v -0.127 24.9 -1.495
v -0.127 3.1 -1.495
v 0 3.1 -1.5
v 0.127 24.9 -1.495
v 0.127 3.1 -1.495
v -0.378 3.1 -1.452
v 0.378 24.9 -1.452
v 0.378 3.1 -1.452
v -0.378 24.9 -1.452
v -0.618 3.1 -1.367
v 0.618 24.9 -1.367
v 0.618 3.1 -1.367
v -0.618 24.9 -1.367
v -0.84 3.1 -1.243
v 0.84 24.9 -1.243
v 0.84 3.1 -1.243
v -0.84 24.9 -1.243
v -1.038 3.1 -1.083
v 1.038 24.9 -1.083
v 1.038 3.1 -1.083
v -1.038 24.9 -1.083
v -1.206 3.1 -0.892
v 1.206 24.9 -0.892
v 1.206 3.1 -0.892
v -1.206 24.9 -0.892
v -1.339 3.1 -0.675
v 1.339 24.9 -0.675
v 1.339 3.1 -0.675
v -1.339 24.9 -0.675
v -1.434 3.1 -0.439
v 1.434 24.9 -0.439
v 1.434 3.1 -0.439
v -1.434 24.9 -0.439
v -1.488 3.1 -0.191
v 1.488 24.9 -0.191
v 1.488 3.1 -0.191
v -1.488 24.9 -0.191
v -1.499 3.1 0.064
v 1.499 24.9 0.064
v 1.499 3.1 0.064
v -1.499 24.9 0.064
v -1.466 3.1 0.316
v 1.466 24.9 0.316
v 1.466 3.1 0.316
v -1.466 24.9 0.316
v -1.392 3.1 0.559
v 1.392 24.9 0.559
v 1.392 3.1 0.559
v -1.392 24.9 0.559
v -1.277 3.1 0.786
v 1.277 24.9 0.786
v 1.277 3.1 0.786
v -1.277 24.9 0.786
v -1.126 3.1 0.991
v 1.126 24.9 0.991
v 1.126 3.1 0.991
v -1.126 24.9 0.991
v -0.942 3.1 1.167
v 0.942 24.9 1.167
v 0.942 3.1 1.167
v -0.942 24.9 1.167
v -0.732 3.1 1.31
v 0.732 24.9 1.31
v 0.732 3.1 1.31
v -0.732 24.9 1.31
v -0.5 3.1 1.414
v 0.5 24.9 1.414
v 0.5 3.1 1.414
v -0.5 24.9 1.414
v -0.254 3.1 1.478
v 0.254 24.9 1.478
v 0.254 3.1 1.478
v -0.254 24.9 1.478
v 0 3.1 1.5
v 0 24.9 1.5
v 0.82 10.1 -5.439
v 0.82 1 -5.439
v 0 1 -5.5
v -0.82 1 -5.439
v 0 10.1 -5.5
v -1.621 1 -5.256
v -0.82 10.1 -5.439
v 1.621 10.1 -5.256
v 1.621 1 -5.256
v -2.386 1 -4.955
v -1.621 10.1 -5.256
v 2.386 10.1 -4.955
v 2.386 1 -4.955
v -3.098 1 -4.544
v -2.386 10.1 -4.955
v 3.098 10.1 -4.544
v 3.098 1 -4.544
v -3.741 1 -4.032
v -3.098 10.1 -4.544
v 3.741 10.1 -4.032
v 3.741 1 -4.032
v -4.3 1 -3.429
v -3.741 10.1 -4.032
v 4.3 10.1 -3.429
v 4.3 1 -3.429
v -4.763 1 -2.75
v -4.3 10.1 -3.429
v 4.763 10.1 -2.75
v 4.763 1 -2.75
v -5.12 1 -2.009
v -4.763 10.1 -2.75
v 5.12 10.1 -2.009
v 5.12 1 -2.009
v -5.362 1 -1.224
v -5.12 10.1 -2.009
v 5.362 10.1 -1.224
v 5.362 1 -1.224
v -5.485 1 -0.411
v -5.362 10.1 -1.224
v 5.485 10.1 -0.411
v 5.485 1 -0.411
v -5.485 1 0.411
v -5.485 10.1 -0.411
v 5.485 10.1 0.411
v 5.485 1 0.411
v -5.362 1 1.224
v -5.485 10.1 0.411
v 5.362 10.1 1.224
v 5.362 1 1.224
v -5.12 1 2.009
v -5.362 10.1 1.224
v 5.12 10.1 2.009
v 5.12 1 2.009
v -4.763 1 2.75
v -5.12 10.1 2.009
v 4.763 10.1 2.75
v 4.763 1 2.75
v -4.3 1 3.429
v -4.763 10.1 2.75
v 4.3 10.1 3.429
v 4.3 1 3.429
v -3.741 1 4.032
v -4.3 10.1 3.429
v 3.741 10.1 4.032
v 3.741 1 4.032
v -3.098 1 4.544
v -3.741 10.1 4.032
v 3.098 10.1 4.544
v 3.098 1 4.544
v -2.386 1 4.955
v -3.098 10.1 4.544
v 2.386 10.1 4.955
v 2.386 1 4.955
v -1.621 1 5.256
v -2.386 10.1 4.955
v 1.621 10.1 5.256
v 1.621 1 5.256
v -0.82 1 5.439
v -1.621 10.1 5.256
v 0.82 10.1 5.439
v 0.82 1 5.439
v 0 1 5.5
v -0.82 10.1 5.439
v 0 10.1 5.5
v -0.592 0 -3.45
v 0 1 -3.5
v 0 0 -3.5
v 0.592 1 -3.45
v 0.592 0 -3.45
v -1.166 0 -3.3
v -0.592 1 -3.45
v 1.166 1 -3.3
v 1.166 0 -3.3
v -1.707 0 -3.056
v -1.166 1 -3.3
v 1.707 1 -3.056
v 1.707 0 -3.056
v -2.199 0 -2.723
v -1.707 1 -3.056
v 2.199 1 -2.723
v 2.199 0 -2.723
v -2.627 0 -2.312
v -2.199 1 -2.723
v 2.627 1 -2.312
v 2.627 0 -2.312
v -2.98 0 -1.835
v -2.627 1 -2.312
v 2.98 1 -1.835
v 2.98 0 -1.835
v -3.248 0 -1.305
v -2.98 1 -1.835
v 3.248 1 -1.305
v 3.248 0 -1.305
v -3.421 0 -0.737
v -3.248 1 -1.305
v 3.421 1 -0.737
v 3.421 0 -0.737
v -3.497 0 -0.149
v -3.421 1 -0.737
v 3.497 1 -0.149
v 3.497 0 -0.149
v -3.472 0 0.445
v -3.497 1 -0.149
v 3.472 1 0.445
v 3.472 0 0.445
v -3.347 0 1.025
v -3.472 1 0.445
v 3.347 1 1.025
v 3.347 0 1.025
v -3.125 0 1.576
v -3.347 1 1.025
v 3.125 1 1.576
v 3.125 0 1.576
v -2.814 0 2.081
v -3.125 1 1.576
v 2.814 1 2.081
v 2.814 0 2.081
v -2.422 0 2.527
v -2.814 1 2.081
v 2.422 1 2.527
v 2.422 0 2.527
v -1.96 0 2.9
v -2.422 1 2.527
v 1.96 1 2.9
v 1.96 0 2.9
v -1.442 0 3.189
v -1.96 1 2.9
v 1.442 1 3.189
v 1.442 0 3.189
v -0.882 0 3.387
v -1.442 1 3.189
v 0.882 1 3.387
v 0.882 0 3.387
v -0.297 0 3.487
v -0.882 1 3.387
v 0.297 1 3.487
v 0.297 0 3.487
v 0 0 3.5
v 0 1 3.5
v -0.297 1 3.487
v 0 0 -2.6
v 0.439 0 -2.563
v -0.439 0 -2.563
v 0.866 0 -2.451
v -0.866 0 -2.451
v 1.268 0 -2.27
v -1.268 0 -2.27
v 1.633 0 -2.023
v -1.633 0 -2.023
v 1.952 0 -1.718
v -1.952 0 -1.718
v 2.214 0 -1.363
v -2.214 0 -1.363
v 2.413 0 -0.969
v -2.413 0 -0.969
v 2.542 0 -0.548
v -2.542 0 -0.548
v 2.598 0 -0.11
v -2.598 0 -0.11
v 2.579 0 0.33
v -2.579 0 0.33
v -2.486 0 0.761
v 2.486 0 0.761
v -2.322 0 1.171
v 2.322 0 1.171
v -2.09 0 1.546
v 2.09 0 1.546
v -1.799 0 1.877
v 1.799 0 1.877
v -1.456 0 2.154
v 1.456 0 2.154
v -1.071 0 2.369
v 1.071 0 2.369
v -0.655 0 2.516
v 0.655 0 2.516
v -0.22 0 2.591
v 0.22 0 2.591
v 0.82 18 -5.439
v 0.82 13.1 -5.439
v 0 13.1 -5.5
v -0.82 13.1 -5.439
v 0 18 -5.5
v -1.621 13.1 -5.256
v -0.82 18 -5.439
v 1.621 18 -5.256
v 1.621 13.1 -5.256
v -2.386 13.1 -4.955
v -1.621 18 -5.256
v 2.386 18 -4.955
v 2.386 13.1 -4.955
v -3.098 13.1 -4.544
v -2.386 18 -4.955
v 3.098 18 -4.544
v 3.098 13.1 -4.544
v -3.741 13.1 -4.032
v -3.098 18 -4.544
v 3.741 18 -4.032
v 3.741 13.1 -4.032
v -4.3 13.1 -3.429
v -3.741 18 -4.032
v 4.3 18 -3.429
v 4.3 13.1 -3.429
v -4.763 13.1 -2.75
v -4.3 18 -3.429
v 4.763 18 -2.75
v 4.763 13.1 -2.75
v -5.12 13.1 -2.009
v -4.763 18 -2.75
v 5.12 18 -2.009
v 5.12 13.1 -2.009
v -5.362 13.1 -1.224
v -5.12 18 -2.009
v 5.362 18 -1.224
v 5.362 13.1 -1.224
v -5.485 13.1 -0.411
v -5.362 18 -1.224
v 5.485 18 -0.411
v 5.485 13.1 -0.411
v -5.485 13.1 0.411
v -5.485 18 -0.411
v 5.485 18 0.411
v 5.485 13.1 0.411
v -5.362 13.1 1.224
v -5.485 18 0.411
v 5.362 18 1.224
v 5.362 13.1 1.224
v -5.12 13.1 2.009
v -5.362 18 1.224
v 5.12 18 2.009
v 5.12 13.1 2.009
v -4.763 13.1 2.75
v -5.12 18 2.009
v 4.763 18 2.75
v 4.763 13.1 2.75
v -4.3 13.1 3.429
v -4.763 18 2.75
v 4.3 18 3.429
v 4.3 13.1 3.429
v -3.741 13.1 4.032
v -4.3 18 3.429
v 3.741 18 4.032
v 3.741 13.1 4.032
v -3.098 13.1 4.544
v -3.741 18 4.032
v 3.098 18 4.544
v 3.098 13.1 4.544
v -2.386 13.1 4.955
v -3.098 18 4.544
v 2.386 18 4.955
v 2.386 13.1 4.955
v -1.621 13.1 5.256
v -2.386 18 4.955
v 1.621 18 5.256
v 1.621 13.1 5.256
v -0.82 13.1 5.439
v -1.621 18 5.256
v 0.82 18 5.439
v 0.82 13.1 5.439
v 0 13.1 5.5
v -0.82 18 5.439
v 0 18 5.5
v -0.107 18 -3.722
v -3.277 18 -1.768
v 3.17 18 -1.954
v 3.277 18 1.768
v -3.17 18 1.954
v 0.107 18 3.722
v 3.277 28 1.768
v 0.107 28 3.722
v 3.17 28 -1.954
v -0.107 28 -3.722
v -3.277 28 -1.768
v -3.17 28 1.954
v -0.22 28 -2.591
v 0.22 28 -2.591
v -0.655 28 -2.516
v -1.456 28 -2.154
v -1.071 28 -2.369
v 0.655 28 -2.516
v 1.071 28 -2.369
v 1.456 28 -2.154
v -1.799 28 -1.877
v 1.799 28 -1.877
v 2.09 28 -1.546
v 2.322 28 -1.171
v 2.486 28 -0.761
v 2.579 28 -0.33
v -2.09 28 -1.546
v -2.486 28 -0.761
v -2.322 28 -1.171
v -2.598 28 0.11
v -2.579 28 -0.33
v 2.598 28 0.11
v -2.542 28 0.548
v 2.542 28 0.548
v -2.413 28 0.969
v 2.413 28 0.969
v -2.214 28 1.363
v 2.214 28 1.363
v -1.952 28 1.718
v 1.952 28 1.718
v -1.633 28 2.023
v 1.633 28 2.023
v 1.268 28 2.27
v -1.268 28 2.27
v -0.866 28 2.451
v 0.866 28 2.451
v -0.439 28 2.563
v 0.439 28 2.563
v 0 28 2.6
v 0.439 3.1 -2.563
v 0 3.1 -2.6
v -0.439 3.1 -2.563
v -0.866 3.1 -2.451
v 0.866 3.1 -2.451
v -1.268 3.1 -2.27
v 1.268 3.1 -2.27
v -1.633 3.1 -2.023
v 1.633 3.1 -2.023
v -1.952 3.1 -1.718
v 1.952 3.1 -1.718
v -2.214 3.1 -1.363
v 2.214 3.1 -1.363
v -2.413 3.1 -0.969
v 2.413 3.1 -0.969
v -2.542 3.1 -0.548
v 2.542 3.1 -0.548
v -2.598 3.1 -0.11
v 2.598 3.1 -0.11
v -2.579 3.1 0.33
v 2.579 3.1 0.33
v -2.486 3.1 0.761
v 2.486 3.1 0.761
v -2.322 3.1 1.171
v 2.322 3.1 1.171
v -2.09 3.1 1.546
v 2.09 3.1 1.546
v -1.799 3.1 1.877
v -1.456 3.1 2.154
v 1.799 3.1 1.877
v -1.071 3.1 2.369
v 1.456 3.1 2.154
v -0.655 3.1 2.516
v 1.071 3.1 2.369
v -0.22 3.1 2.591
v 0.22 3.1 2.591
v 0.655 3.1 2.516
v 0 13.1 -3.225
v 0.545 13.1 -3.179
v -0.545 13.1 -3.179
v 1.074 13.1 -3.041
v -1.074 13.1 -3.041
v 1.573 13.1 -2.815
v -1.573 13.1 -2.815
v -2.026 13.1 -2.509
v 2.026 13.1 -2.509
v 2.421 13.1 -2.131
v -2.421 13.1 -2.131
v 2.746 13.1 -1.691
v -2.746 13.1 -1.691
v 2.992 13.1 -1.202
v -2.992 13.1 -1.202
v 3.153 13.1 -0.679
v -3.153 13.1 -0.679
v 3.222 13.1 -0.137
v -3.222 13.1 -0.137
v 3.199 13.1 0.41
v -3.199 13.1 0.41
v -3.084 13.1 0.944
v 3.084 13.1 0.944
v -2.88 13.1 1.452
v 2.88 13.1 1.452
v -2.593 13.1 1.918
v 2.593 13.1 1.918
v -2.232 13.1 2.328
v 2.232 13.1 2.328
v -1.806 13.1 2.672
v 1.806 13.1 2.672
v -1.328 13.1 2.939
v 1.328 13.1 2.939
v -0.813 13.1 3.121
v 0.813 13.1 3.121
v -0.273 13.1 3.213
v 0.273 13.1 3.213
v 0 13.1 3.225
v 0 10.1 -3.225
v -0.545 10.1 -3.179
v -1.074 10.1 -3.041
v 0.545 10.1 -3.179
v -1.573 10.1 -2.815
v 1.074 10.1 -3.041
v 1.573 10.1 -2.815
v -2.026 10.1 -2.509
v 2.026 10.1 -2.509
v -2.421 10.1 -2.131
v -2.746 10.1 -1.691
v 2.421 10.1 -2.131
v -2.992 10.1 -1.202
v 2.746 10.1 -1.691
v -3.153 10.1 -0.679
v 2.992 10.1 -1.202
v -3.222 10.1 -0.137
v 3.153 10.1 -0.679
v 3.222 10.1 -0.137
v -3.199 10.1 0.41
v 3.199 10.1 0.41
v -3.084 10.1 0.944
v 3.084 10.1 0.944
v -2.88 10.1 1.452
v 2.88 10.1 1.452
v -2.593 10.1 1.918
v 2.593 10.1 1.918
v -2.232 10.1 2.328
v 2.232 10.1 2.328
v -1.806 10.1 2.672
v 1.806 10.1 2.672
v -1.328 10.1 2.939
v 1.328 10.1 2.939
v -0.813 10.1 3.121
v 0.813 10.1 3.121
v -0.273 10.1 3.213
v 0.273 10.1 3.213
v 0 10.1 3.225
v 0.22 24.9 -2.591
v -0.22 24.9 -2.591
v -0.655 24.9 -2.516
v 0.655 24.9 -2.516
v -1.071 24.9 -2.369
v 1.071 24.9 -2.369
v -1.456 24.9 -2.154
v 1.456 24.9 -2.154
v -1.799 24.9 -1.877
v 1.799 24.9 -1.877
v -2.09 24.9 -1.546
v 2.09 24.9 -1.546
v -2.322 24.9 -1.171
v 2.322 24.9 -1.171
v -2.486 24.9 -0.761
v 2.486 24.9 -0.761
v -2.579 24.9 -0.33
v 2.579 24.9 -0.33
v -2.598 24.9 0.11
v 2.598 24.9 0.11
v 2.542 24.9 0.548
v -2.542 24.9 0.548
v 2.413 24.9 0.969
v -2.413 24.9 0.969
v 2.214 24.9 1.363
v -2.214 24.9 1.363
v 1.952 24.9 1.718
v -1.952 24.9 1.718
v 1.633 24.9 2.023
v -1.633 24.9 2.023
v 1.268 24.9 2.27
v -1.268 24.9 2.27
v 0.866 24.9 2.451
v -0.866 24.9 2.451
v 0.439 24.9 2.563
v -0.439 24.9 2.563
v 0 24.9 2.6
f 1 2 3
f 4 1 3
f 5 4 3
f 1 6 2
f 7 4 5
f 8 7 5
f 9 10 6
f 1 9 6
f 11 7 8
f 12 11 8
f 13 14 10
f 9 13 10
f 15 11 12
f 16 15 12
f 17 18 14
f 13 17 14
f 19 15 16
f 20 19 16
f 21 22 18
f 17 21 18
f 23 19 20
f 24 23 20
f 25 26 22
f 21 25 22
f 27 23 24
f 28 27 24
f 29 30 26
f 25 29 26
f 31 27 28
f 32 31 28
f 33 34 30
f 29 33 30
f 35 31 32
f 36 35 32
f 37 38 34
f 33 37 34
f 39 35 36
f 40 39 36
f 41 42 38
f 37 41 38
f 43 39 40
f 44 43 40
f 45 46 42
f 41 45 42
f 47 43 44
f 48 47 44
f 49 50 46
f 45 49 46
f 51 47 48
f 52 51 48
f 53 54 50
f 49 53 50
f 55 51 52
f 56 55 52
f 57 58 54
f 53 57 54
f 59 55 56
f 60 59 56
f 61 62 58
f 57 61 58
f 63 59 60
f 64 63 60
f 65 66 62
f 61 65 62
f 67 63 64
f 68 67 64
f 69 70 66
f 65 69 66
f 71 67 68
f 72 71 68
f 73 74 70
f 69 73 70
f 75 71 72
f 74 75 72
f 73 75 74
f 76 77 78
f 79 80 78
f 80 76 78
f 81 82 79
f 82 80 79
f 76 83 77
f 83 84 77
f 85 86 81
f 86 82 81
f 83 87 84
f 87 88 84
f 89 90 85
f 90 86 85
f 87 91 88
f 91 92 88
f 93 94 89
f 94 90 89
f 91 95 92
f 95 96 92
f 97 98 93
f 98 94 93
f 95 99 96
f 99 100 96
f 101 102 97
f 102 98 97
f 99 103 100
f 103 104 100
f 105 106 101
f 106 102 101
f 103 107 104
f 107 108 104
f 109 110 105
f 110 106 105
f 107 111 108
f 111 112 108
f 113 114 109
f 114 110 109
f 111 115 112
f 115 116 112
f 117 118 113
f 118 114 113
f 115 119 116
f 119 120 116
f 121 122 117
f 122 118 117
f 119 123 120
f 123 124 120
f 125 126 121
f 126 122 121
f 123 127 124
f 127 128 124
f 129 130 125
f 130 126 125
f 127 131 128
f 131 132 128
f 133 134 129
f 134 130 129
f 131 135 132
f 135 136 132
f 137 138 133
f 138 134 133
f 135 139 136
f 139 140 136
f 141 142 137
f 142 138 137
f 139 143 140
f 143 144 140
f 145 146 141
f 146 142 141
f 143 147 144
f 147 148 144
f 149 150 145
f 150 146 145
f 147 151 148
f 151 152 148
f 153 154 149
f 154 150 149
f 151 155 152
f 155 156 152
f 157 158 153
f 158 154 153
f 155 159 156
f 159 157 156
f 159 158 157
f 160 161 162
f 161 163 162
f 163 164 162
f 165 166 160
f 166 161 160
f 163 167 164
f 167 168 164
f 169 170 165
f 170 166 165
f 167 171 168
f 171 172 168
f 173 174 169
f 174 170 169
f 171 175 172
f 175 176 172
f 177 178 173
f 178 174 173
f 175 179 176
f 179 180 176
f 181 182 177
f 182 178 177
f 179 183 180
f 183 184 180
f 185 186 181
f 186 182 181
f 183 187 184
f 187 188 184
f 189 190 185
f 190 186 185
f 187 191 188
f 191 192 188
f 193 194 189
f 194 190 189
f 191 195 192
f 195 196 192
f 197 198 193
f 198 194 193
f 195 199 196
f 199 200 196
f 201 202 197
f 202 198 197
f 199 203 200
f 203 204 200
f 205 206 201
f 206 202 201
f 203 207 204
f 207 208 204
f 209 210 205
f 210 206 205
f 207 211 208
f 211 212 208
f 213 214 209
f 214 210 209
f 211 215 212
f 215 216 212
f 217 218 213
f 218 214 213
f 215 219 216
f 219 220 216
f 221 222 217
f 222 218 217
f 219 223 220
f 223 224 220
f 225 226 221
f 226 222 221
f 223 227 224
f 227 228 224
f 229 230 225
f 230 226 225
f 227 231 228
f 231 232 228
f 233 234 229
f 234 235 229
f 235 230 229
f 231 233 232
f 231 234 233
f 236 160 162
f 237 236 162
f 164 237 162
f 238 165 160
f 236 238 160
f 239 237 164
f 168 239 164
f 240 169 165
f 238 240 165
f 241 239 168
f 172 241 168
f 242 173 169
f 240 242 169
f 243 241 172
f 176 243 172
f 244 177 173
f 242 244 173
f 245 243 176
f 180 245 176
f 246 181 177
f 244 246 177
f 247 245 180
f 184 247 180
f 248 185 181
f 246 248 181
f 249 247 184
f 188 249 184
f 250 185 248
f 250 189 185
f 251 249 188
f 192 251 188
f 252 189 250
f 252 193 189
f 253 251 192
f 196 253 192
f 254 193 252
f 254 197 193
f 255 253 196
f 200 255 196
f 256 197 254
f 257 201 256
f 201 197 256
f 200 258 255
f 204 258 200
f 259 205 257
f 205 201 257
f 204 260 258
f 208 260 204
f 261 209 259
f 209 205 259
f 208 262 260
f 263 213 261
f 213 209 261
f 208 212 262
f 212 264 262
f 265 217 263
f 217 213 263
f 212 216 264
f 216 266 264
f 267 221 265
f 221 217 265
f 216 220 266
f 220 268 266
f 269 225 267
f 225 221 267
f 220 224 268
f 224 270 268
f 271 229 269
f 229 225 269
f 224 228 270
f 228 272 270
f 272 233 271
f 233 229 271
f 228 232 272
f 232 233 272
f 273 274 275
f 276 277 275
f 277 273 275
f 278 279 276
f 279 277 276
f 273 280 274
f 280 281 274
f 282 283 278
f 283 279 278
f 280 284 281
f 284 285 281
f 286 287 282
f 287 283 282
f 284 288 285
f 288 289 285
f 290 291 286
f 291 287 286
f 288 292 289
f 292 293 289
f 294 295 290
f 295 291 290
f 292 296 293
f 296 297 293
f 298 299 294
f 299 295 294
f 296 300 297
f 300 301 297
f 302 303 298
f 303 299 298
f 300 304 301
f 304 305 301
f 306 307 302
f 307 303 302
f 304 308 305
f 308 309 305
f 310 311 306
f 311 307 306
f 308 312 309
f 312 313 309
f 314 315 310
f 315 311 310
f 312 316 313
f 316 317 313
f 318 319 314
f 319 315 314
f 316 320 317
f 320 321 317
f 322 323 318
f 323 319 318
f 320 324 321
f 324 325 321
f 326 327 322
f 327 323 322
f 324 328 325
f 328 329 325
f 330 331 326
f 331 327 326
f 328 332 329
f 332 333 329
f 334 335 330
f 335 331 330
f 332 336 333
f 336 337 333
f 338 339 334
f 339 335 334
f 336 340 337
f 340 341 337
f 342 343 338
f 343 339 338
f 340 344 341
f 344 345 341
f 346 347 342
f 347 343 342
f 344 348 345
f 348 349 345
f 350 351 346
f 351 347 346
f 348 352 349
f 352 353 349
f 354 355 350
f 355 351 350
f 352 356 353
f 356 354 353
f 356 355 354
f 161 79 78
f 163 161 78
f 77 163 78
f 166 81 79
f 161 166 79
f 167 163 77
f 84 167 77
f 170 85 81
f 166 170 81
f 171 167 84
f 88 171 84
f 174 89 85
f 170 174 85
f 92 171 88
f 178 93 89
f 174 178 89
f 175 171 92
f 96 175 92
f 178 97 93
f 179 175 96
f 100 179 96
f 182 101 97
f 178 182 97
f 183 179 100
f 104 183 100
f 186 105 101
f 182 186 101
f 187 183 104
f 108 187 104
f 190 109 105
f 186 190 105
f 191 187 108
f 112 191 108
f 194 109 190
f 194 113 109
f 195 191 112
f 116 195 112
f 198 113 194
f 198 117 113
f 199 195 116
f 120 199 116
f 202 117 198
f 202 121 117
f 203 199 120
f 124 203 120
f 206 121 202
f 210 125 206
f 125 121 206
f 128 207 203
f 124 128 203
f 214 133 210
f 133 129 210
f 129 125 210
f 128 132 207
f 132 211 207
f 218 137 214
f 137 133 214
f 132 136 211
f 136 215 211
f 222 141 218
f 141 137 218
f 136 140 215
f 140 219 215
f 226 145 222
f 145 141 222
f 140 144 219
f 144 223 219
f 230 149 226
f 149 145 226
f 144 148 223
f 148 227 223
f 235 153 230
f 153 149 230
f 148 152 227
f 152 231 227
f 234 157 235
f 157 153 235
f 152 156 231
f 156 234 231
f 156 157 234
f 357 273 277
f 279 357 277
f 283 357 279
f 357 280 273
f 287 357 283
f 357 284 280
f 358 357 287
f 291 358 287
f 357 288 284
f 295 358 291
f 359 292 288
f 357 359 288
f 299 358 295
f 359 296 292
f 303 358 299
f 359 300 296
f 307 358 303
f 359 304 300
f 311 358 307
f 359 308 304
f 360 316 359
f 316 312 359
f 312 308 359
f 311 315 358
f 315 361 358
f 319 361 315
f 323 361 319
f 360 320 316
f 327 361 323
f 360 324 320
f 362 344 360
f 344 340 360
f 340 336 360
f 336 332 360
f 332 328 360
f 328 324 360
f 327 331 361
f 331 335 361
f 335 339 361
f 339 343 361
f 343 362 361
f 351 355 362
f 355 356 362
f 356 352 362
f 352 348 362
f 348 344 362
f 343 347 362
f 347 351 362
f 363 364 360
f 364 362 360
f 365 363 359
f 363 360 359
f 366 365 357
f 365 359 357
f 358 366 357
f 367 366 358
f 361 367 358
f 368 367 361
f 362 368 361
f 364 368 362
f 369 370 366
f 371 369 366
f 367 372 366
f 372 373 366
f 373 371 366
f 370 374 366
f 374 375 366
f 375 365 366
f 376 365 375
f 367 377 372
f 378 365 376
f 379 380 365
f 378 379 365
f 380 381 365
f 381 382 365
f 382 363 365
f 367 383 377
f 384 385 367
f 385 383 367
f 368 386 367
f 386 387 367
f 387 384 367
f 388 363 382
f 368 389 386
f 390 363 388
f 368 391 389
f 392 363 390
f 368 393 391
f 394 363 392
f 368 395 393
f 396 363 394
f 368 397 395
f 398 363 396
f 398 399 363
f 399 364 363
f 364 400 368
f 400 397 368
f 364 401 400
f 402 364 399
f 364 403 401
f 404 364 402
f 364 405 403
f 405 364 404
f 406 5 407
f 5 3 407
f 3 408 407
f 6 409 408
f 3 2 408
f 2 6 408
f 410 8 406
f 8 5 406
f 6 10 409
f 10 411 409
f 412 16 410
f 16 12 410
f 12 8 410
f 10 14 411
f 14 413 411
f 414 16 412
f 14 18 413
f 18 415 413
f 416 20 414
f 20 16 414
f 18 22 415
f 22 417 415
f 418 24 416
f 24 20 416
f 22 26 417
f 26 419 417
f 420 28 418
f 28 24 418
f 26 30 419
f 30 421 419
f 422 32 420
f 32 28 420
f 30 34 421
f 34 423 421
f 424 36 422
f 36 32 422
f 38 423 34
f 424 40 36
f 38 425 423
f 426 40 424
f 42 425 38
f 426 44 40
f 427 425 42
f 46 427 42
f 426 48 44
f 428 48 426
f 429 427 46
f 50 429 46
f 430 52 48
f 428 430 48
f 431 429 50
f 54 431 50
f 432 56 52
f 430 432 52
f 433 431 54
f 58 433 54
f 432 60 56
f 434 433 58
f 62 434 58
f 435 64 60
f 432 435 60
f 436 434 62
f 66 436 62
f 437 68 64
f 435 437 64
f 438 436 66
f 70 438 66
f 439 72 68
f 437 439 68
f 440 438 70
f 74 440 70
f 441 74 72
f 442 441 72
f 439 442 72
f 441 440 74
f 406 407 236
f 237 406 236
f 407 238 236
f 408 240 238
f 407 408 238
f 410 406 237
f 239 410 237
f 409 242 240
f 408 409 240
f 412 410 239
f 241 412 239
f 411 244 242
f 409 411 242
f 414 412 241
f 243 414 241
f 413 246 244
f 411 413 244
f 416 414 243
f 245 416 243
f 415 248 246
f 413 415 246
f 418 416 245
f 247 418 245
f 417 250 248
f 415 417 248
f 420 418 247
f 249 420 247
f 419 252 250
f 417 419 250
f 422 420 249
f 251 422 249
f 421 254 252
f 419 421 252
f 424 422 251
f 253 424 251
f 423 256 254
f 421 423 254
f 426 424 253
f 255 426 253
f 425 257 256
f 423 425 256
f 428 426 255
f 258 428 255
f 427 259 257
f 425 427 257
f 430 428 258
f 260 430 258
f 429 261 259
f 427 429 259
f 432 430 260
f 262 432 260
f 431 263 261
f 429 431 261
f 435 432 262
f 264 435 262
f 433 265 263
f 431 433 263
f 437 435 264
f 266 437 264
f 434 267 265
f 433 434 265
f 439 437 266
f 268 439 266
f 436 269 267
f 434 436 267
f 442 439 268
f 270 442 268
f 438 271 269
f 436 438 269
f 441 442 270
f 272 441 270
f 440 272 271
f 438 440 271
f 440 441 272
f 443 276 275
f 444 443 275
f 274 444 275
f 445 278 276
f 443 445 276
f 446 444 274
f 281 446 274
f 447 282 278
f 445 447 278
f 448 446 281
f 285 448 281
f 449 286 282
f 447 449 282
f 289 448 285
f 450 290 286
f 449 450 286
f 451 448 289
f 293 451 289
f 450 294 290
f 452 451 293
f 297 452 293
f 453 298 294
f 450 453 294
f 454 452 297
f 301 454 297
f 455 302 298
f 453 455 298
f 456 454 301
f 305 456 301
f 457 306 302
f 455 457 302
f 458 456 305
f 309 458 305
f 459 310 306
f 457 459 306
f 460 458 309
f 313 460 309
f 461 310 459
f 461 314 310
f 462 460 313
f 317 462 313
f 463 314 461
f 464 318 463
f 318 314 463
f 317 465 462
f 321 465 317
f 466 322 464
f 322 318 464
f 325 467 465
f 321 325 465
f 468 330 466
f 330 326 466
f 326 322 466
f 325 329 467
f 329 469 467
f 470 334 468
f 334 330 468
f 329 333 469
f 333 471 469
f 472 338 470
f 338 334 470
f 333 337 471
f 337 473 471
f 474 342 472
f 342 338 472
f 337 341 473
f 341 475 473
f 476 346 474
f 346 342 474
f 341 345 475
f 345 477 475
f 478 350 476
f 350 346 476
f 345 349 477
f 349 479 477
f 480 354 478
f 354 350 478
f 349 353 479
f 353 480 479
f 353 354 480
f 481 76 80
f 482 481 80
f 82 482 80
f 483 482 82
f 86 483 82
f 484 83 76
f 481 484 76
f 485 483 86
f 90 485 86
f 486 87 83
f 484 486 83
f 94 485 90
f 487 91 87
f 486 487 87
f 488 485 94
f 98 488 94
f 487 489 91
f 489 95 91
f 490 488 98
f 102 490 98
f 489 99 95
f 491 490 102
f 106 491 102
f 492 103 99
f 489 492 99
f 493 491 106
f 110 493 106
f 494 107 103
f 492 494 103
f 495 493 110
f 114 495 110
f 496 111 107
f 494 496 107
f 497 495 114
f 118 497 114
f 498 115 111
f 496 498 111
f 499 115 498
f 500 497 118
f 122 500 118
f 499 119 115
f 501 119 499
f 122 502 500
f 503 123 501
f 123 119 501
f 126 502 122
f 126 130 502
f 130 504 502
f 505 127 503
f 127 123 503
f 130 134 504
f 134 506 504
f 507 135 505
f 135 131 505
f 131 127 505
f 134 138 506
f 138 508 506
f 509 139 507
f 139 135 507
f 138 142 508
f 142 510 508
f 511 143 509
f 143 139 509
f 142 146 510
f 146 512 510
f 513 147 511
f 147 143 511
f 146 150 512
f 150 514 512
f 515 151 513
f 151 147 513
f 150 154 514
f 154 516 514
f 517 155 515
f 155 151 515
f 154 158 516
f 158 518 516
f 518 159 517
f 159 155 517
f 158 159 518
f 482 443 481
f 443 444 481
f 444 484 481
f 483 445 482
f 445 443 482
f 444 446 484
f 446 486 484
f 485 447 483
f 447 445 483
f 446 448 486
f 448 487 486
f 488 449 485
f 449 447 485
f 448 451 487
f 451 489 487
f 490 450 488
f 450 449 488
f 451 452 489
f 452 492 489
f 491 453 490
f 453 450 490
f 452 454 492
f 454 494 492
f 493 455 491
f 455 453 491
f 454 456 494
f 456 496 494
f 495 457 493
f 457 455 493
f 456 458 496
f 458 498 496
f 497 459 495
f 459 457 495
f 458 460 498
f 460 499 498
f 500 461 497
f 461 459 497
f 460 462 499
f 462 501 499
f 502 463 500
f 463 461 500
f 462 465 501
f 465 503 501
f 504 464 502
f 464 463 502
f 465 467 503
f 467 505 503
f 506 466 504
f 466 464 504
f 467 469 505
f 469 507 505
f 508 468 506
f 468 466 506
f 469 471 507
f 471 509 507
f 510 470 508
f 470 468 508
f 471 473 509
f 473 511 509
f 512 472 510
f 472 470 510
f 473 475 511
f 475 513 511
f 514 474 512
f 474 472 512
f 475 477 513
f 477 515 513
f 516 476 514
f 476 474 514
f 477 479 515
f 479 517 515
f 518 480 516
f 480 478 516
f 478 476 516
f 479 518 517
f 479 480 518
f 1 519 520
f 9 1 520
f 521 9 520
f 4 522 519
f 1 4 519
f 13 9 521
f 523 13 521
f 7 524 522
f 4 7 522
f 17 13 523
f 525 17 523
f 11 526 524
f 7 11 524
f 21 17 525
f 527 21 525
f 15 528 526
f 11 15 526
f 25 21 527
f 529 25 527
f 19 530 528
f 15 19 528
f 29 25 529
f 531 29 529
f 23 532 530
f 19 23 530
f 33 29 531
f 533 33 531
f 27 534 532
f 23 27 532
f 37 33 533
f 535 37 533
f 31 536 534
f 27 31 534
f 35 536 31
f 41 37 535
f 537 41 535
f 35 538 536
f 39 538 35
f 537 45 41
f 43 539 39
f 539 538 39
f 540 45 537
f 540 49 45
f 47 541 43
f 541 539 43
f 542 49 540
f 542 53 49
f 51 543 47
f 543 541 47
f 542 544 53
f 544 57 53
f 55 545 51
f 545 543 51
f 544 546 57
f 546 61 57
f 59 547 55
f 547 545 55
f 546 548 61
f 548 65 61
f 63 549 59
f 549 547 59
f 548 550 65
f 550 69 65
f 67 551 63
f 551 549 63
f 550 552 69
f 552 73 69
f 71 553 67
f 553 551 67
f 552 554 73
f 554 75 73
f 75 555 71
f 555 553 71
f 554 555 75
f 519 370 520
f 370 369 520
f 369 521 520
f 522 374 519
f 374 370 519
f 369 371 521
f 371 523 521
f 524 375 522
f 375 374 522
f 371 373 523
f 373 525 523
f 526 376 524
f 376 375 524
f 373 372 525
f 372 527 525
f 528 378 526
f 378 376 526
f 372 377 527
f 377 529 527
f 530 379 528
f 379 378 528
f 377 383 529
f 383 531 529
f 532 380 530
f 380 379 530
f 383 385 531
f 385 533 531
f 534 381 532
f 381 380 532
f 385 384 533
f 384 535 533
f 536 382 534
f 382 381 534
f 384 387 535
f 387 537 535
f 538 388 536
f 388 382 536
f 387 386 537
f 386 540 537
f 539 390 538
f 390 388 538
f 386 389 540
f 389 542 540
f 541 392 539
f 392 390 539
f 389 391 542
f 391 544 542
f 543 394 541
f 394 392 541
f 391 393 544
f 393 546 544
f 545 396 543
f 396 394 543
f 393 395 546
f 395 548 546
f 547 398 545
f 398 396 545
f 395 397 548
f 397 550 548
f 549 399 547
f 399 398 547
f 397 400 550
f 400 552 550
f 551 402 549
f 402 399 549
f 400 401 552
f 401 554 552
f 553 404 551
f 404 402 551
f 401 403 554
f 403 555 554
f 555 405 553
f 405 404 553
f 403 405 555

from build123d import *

# Parameters (mm, degrees)
SKETCH1_R           = 3.5
BOSS_EXTRUDE1_DEPTH = 1
SKETCH2_R           = 5.5
BOSS_EXTRUDE2_DEPTH = 8
SKETCH3_R           = 5.5
BOSS_EXTRUDE3_DEPTH = 9
BOSS_EXTRUDE5_DEPTH = 10
SKETCH5_R           = 1.5
CUT_EXTRUDE1_DEPTH  = 30.060282173
SKETCH6_R           = 2.6
CUT_EXTRUDE2_DEPTH  = 3.1
SKETCH7_R           = 8.67620316
SKETCH7_R_2         = 3.225
CUT_EXTRUDE3_DEPTH  = 3
CUT_EXTRUDE4_START  = -3.1
SKETCH8_R           = 2.6
CUT_EXTRUDE4_DEPTH  = 3.1


with BuildPart() as part:
    # Sketch1 → Boss-Extrude1 (new body)
    with BuildSketch(Plane(origin=(0, 0, 0), x_dir=(1, 0, 0), z_dir=(0, 1, 0))):
        with Locations(Location((0, 0, 0), (0, 0, 270))):
            Circle(SKETCH1_R)
    extrude(amount=BOSS_EXTRUDE1_DEPTH)

    # Sketch2 → Boss-Extrude2 (add)
    with BuildSketch(Plane(origin=(0, 1, 0), x_dir=(1, 0, 0), z_dir=(0, 1, 0))):
        with Locations(Location((0, 0, 0), (0, 0, 270))):
            Circle(SKETCH2_R)
    extrude(amount=BOSS_EXTRUDE2_DEPTH)

    # Sketch3 → Boss-Extrude3 (add)
    with BuildSketch(Plane(origin=(0, 9, 0), x_dir=(1, 0, 0), z_dir=(0, 1, 0))):
        with Locations(Location((0, 0, 0), (0, 0, 270))):
            Circle(SKETCH3_R)
    extrude(amount=BOSS_EXTRUDE3_DEPTH)

    # Sketch4 → Boss-Extrude5 (add)
    with BuildSketch(Plane(origin=(0, 18, 0), x_dir=(1, 0, 0), z_dir=(0, 1, 0))):
        Polygon((3.277230323, -1.768406461), (3.170100081, 1.953961483), (-0.107130242, 3.722367944), (-3.277230323, 1.768406461), (-3.170100081, -1.953961483), (0.107130242, -3.722367944), align=None)
    extrude(amount=BOSS_EXTRUDE5_DEPTH)

    # Sketch5 → Cut-Extrude1 (cut, through all)
    with BuildSketch(Plane(origin=(0, 28, 0), x_dir=(1, 0, 0), z_dir=(0, 1, 0))):
        with Locations(Location((0, 0, 0), (0, 0, 270))):
            Circle(SKETCH5_R)
    extrude(amount=-CUT_EXTRUDE1_DEPTH, mode=Mode.SUBTRACT)

    # Sketch6 → Cut-Extrude2 (cut)
    with BuildSketch(Plane.XZ):
        with Locations(Location((0, 0, 0), (0, 0, 270))):
            Circle(SKETCH6_R)
    extrude(amount=-CUT_EXTRUDE2_DEPTH, mode=Mode.SUBTRACT)

    # Sketch7 → Cut-Extrude3 (cut)
    with BuildSketch(Plane(origin=(0, 10.1, 0), x_dir=(1, 0, 0), z_dir=(0, 1, 0))):
        Circle(SKETCH7_R)
        with Locations(Location((0, 0, 0), (0, 0, 270))):
            Circle(SKETCH7_R_2, mode=Mode.SUBTRACT)
    extrude(amount=CUT_EXTRUDE3_DEPTH, mode=Mode.SUBTRACT)

    # Sketch8 → Cut-Extrude4 (cut)
    with BuildSketch(Plane(origin=(0, 28, 0), x_dir=(1, 0, 0), z_dir=(0, 1, 0)).offset(CUT_EXTRUDE4_START)):
        with Locations(Location((0, 0, 0), (0, 0, 90))):
            Circle(SKETCH8_R)
    extrude(amount=CUT_EXTRUDE4_DEPTH, mode=Mode.SUBTRACT)


solid = part.part
